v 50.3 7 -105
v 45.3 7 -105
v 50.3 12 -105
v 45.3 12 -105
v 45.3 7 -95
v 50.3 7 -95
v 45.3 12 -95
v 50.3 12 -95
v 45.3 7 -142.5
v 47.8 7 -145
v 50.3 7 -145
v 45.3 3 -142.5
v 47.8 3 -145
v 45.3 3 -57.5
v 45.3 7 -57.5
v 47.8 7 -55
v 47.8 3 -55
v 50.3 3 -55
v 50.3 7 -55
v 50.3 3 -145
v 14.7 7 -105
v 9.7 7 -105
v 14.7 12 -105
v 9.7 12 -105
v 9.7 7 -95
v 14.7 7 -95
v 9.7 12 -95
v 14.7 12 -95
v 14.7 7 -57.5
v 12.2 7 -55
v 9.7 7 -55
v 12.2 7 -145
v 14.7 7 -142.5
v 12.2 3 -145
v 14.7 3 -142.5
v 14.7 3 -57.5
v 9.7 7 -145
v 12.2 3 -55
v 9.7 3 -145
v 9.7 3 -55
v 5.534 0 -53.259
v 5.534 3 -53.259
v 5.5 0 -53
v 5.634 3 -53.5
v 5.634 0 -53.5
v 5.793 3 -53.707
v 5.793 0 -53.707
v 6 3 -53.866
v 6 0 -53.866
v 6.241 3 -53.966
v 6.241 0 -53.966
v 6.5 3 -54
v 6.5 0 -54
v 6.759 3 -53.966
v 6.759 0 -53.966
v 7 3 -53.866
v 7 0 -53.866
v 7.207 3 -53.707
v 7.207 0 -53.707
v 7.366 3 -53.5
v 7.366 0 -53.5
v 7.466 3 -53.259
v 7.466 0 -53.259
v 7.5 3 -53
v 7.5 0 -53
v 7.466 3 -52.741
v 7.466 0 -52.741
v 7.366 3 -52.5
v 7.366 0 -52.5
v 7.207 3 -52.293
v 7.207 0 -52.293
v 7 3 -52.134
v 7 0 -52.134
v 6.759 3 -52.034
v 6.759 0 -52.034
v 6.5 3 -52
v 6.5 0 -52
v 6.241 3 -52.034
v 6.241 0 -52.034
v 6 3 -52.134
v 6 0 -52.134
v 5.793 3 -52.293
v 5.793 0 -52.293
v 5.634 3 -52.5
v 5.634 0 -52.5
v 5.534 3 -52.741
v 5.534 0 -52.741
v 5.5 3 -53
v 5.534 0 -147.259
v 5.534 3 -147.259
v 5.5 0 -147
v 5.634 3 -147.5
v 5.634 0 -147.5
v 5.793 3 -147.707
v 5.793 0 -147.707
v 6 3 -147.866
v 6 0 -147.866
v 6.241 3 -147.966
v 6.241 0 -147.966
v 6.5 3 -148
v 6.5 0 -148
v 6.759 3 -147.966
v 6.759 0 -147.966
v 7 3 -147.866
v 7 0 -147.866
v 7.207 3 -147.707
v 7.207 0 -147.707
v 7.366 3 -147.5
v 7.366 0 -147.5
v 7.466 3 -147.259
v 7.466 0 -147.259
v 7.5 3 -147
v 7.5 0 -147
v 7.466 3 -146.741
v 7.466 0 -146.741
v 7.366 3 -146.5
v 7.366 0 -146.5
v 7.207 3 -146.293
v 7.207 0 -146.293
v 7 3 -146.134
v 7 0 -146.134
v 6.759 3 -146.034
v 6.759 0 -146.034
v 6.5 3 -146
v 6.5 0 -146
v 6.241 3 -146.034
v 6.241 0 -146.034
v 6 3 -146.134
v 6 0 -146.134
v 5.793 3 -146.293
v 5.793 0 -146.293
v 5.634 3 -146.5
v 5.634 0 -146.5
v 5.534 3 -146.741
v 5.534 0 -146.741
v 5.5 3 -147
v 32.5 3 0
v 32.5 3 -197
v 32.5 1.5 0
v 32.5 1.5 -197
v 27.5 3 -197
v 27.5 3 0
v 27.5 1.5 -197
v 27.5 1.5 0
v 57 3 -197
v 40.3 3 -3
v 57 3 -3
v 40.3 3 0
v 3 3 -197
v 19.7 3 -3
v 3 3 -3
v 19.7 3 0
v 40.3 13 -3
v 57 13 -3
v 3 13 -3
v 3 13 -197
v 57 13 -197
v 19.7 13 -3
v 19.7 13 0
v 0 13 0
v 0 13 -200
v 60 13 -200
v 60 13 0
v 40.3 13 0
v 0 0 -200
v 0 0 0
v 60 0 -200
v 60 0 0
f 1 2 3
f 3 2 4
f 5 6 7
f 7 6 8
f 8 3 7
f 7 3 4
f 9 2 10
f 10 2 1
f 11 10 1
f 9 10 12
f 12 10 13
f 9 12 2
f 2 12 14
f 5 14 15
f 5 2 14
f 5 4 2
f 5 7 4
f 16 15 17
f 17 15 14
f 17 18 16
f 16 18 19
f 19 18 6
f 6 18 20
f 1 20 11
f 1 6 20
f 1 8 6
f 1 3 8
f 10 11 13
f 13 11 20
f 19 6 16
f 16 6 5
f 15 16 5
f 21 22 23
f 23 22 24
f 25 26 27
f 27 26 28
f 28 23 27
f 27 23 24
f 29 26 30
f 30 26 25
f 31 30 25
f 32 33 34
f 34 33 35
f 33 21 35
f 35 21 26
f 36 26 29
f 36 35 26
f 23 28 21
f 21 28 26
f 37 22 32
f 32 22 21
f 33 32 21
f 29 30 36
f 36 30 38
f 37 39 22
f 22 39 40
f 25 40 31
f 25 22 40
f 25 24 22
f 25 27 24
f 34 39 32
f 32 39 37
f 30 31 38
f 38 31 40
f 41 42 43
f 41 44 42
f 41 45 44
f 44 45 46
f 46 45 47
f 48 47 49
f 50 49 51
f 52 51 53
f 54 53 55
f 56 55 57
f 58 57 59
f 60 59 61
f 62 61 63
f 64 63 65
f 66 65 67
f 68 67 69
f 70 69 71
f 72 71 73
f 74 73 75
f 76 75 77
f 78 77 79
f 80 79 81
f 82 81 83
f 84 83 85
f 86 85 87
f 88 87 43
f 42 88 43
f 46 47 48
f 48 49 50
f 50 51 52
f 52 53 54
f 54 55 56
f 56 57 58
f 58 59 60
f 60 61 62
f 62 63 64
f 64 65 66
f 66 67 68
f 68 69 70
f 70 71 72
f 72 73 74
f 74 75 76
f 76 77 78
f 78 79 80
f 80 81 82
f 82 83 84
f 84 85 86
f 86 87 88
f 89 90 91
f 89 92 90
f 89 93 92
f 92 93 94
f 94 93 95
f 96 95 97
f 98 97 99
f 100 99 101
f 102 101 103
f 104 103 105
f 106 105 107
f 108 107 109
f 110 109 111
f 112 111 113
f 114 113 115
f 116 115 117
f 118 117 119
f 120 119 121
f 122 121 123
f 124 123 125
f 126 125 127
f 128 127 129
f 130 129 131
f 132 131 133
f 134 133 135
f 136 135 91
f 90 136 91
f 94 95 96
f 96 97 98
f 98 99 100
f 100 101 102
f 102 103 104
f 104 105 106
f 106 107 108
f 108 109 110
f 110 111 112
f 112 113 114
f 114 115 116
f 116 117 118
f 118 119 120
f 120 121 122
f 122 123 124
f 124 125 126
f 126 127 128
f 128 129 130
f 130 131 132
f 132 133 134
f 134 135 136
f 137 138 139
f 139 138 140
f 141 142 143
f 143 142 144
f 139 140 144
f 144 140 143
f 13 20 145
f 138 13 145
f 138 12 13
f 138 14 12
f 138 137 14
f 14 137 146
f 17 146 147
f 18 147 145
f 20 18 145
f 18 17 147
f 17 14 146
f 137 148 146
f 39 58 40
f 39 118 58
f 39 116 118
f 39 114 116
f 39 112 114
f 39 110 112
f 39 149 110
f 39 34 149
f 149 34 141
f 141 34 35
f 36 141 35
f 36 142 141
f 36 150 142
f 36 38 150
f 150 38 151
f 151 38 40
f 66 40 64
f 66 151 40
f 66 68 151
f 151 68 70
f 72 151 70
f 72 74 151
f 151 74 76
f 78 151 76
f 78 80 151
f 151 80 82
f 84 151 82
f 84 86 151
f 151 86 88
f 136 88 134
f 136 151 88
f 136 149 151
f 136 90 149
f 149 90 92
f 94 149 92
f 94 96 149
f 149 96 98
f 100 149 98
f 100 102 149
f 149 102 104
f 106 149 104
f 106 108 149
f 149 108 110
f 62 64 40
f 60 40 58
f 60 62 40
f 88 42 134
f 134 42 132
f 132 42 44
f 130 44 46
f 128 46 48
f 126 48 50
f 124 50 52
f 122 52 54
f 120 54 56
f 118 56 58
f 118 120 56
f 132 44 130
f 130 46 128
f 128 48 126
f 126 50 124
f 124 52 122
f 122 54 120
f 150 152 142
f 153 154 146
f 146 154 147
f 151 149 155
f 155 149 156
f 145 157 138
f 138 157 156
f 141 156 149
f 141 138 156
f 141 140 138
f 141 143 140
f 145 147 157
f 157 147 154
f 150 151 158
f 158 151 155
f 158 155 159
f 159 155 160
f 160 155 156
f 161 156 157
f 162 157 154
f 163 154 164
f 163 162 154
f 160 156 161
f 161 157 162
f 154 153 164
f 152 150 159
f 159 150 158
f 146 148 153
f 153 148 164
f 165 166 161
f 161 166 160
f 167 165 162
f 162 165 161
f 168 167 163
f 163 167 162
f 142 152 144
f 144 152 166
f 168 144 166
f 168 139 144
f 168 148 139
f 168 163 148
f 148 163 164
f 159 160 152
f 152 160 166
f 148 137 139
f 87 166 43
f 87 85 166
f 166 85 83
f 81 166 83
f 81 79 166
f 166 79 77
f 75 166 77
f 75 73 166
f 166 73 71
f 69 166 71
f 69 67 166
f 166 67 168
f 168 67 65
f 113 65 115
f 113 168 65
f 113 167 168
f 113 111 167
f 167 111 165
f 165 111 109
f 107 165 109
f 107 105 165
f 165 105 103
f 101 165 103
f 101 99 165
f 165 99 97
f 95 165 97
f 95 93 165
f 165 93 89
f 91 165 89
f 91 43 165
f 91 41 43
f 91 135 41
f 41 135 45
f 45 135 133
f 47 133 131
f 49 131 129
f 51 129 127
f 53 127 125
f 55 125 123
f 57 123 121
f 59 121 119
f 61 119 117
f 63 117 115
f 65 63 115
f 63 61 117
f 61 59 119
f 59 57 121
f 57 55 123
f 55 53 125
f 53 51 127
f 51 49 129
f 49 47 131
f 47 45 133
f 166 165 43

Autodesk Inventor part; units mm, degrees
ref_plane "YZ Plane" through (0, 0, 0) normal (1, 0, 0) x (0, 1, 0)
ref_plane "XZ Plane" through (0, 0, 0) normal (0, 1, 0) x (-1, 0, 0)
ref_plane "XY Plane" through (0, 0, 0) normal (0, 0, 1) x (1, 0, 0)
sketch "Sketch1" plane through (0, 0, 0) normal (0, 1, 0) x (-1, 0, 0)
  line L0 (0, 0) -> (-60, 0)
  line L1 (-60, 0) -> (-60, -200)
  line L2 (-60, -200) -> (0, -200)
  line L3 (0, -200) -> (0, 0)
  dimension "d0" = 60
  dimension "d1" = 200
extrude "Base" add sketch "Sketch1" along normal blind 3
sketch "Sketch4" plane through (0, 3, 0) normal (0, 1, 0) x (1, 0, 0)
  line L0 (0, 0) -> (60, 0) projected
  line L1 (60, 0) -> (60, 200) projected
  line L2 (60, 200) -> (0, 200) projected
  line L3 (0, 200) -> (0, 0) projected
  line L4 (3, 3) -> (57, 3)
  line L5 (57, 3) -> (57, 197)
  line L6 (57, 197) -> (3, 197)
  line L7 (3, 197) -> (3, 3)
  line L8 (19.7, 0) -> (40.3, 0)
  line L9 (40.3, 0) -> (40.3, 3)
  line L10 (40.3, 3) -> (19.7, 3)
  line L11 (19.7, 3) -> (19.7, 0)
  point P0 (30, 0)
  point P1 (30, 3)
  dimension "d6" = 3
  dimension "d7" = 20.6
extrude "Paredes" add sketch "Sketch4" along normal blind 10 contours L3 L2 L1 L0 L9 L4 L5 L6 L7 L11
sketch "Sketch5" plane through (0, 3, 0) normal (0, 1, 0) x (1, 0, 0)
  line L0 (27.5, 0) -> (32.5, 0)
  line L1 (32.5, 0) -> (32.5, 197)
  line L2 (32.5, 197) -> (27.5, 197)
  line L3 (27.5, 197) -> (27.5, 0)
  line L4 (19.7, 0) -> (40.3, 0) projected
  line L5 (57, 197) -> (3, 197) projected
  point P0 (0, 0)
  point P1 (30, 0)
  point P2 (30, 197)
  dimension "d10" = 5
extrude "Canal" cut sketch "Sketch5" against normal blind 1.5
sketch "Sketch6" plane through (0, 3, 0) normal (0, 1, 0) x (1, 0, 0)
  line L0 (6.5, 3.0083) -> (6.5, 197)
  line L1 (27.5, 197) -> (3, 197) projected
  line L2 (3, 197) -> (3, 3) projected
  line L3 (3, 3) -> (19.7, 3) projected
  point P0 (0, 0)
  point P1 (6.5, 53)
  point P2 (6.5, 147)
  dimension "d13" = 3.5
  dimension "d14" = 50
  dimension "d15" = 50
hole "Agujeros" at (6.5, 3, -53) at (6.5, 3, -147) direction (0, -1, 0) diameter 2 end through all
ref_plane "Mitad" through (30, 3, -3) normal (1, 0, 0) x (0, 0, -1)
sketch "Sketch9" plane through (0, 3, 0) normal (0, 1, 0) x (1, 0, 0)
  line L0 (9.7, 55) -> (14.7, 55)
  line L1 (14.7, 55) -> (14.7, 145)
  line L2 (14.7, 145) -> (9.7, 145)
  line L3 (9.7, 145) -> (9.7, 55)
  line L4 (30, 240) -> (30, -40) projected
  line L5 (3, 197) -> (3, 3) projected
  line L6 (3, 100) -> (57, 100)
  line L7 (57, 197) -> (57, 3) projected
  point P0 (0, 0)
  point P1 (14.7, 100)
  dimension "d23" = 15.3
  dimension "d24" = 90
  dimension "d25" = 5
extrude "Soporte base" add sketch "Sketch9" along normal blind 4
chamfer "Chaflán soporte" distance 2.5 angle 45 2 edges at (14.7, 5, -55) (14.7, 5, -145)
sketch "Sketch10" plane through (0, 7, 0) normal (0, 1, 0) x (1, 0, 0)
  line L0 (9.7, 95) -> (14.7, 95)
  line L1 (14.7, 95) -> (14.7, 105)
  line L2 (14.7, 105) -> (9.7, 105)
  line L3 (9.7, 105) -> (9.7, 95)
  line L4 (9.7, 145) -> (9.7, 55) projected
  line L5 (14.7, 57.5) -> (14.7, 142.5) projected
  point P0 (0, 0)
  point P1 (9.7, 100)
  point P2 (14.7, 100)
  dimension "d31" = 10
extrude "Soporte tope" add sketch "Sketch10" along normal blind 5
mirror "Segundo soporte" about plane through (30, 3, -3) normal (1, 0, 0) of "Soporte base", "Chaflán soporte", "Soporte tope"
equation "\"d0\" = base_ancho"
equation "\"d1\" = base_largo"
equation "\"d2\" = base_alto"
equation "\"d6\" = muros_grosor"
equation "\"d7\" = hoja_ancho + 2 * margen"
equation "\"d8\" = muros_alto"
equation "\"d10\" = rail_grosor"
equation "\"d11\" = rail_alto"
equation "\"d13\" = base_agujeros_separacion"
equation "\"d14\" = base_agujeros_distancia"
equation "\"d15\" = d14"
equation "\"d16\" = base_agujeros_diametro"
equation "\"d21\" = d14"
equation "\"d23\" = 0.5 * hoja_ancho_total + margen"
equation "\"d24\" = deslizador_soporte_largo"
equation "\"d25\" = deslizador_soporte_ancho"
equation "\"d26\" = deslizador_soporte_alto"
equation "\"d28\" = 0.5 * deslizador_soporte_ancho"
equation "\"d31\" = deslizador_tope_largo"
equation "\"d32\" = deslizador_tope_alto"
equation "\"margen\" = 0.3"
equation "\"hoja_stop_largo\" = 5"
equation "\"hoja_stop_saliente\" = 5"
equation "\"hoja_stop_posicion\" = 5"
equation "\"hoja_alto\" = 3"
equation "\"rail_grosor\" = 5"
equation "\"base_alto\" = 3"
equation "\"base_ancho\" = 60"
equation "\"base_largo\" = 200"
equation "\"muros_alto\" = 10"
equation "\"muros_grosor\" = 3"
equation "\"rail_alto\" = 1.5"
equation "\"hoja_stop_biselado\" = 2"
equation "\"hoja_cola_biselado\" = 1"
equation "\"hoja_filo_biselado\" = 0.5"
equation "\"deslizador_soporte_alto\" = 4"
equation "\"deslizador_soporte_ancho\" = 5"
equation "\"deslizador_tope_alto\" = 5"
equation "\"deslizador_soporte_largo\" = 90"
equation "\"deslizador_tope_largo\" = 10"
equation "\"deslizador_alto\" = 3"
equation "\"tirador_agarre_largo\" = 3"
equation "\"deslizador_saliente\" = 5"
equation "\"deslizador_largo\" = 144"
equation "\"deslizador_interruptor_largo\" = 5"
equation "\"deslizador_interruptor_ancho\" = 7"
equation "\"traba_largo\" = 39"
equation "\"traba_diametro\" = 5"
equation "\"traba_ancho\" = 3"
equation "\"traba_top_alto\" = 3"
equation "\"traba_alto\" = 4"
equation "\"traba_top_largo\" = 5"
equation "\"traba_diametro_perforacion\" = 2"
equation "\"base_agujeros_distancia\" = 50"
equation "\"base_agujeros_separacion\" = 3.5"
equation "\"base_agujeros_diametro\" = 2"
equation "\"hoja_ancho\" = 20"
equation "\"hoja_ancho_total\" = 30"
properties part number "Base"
